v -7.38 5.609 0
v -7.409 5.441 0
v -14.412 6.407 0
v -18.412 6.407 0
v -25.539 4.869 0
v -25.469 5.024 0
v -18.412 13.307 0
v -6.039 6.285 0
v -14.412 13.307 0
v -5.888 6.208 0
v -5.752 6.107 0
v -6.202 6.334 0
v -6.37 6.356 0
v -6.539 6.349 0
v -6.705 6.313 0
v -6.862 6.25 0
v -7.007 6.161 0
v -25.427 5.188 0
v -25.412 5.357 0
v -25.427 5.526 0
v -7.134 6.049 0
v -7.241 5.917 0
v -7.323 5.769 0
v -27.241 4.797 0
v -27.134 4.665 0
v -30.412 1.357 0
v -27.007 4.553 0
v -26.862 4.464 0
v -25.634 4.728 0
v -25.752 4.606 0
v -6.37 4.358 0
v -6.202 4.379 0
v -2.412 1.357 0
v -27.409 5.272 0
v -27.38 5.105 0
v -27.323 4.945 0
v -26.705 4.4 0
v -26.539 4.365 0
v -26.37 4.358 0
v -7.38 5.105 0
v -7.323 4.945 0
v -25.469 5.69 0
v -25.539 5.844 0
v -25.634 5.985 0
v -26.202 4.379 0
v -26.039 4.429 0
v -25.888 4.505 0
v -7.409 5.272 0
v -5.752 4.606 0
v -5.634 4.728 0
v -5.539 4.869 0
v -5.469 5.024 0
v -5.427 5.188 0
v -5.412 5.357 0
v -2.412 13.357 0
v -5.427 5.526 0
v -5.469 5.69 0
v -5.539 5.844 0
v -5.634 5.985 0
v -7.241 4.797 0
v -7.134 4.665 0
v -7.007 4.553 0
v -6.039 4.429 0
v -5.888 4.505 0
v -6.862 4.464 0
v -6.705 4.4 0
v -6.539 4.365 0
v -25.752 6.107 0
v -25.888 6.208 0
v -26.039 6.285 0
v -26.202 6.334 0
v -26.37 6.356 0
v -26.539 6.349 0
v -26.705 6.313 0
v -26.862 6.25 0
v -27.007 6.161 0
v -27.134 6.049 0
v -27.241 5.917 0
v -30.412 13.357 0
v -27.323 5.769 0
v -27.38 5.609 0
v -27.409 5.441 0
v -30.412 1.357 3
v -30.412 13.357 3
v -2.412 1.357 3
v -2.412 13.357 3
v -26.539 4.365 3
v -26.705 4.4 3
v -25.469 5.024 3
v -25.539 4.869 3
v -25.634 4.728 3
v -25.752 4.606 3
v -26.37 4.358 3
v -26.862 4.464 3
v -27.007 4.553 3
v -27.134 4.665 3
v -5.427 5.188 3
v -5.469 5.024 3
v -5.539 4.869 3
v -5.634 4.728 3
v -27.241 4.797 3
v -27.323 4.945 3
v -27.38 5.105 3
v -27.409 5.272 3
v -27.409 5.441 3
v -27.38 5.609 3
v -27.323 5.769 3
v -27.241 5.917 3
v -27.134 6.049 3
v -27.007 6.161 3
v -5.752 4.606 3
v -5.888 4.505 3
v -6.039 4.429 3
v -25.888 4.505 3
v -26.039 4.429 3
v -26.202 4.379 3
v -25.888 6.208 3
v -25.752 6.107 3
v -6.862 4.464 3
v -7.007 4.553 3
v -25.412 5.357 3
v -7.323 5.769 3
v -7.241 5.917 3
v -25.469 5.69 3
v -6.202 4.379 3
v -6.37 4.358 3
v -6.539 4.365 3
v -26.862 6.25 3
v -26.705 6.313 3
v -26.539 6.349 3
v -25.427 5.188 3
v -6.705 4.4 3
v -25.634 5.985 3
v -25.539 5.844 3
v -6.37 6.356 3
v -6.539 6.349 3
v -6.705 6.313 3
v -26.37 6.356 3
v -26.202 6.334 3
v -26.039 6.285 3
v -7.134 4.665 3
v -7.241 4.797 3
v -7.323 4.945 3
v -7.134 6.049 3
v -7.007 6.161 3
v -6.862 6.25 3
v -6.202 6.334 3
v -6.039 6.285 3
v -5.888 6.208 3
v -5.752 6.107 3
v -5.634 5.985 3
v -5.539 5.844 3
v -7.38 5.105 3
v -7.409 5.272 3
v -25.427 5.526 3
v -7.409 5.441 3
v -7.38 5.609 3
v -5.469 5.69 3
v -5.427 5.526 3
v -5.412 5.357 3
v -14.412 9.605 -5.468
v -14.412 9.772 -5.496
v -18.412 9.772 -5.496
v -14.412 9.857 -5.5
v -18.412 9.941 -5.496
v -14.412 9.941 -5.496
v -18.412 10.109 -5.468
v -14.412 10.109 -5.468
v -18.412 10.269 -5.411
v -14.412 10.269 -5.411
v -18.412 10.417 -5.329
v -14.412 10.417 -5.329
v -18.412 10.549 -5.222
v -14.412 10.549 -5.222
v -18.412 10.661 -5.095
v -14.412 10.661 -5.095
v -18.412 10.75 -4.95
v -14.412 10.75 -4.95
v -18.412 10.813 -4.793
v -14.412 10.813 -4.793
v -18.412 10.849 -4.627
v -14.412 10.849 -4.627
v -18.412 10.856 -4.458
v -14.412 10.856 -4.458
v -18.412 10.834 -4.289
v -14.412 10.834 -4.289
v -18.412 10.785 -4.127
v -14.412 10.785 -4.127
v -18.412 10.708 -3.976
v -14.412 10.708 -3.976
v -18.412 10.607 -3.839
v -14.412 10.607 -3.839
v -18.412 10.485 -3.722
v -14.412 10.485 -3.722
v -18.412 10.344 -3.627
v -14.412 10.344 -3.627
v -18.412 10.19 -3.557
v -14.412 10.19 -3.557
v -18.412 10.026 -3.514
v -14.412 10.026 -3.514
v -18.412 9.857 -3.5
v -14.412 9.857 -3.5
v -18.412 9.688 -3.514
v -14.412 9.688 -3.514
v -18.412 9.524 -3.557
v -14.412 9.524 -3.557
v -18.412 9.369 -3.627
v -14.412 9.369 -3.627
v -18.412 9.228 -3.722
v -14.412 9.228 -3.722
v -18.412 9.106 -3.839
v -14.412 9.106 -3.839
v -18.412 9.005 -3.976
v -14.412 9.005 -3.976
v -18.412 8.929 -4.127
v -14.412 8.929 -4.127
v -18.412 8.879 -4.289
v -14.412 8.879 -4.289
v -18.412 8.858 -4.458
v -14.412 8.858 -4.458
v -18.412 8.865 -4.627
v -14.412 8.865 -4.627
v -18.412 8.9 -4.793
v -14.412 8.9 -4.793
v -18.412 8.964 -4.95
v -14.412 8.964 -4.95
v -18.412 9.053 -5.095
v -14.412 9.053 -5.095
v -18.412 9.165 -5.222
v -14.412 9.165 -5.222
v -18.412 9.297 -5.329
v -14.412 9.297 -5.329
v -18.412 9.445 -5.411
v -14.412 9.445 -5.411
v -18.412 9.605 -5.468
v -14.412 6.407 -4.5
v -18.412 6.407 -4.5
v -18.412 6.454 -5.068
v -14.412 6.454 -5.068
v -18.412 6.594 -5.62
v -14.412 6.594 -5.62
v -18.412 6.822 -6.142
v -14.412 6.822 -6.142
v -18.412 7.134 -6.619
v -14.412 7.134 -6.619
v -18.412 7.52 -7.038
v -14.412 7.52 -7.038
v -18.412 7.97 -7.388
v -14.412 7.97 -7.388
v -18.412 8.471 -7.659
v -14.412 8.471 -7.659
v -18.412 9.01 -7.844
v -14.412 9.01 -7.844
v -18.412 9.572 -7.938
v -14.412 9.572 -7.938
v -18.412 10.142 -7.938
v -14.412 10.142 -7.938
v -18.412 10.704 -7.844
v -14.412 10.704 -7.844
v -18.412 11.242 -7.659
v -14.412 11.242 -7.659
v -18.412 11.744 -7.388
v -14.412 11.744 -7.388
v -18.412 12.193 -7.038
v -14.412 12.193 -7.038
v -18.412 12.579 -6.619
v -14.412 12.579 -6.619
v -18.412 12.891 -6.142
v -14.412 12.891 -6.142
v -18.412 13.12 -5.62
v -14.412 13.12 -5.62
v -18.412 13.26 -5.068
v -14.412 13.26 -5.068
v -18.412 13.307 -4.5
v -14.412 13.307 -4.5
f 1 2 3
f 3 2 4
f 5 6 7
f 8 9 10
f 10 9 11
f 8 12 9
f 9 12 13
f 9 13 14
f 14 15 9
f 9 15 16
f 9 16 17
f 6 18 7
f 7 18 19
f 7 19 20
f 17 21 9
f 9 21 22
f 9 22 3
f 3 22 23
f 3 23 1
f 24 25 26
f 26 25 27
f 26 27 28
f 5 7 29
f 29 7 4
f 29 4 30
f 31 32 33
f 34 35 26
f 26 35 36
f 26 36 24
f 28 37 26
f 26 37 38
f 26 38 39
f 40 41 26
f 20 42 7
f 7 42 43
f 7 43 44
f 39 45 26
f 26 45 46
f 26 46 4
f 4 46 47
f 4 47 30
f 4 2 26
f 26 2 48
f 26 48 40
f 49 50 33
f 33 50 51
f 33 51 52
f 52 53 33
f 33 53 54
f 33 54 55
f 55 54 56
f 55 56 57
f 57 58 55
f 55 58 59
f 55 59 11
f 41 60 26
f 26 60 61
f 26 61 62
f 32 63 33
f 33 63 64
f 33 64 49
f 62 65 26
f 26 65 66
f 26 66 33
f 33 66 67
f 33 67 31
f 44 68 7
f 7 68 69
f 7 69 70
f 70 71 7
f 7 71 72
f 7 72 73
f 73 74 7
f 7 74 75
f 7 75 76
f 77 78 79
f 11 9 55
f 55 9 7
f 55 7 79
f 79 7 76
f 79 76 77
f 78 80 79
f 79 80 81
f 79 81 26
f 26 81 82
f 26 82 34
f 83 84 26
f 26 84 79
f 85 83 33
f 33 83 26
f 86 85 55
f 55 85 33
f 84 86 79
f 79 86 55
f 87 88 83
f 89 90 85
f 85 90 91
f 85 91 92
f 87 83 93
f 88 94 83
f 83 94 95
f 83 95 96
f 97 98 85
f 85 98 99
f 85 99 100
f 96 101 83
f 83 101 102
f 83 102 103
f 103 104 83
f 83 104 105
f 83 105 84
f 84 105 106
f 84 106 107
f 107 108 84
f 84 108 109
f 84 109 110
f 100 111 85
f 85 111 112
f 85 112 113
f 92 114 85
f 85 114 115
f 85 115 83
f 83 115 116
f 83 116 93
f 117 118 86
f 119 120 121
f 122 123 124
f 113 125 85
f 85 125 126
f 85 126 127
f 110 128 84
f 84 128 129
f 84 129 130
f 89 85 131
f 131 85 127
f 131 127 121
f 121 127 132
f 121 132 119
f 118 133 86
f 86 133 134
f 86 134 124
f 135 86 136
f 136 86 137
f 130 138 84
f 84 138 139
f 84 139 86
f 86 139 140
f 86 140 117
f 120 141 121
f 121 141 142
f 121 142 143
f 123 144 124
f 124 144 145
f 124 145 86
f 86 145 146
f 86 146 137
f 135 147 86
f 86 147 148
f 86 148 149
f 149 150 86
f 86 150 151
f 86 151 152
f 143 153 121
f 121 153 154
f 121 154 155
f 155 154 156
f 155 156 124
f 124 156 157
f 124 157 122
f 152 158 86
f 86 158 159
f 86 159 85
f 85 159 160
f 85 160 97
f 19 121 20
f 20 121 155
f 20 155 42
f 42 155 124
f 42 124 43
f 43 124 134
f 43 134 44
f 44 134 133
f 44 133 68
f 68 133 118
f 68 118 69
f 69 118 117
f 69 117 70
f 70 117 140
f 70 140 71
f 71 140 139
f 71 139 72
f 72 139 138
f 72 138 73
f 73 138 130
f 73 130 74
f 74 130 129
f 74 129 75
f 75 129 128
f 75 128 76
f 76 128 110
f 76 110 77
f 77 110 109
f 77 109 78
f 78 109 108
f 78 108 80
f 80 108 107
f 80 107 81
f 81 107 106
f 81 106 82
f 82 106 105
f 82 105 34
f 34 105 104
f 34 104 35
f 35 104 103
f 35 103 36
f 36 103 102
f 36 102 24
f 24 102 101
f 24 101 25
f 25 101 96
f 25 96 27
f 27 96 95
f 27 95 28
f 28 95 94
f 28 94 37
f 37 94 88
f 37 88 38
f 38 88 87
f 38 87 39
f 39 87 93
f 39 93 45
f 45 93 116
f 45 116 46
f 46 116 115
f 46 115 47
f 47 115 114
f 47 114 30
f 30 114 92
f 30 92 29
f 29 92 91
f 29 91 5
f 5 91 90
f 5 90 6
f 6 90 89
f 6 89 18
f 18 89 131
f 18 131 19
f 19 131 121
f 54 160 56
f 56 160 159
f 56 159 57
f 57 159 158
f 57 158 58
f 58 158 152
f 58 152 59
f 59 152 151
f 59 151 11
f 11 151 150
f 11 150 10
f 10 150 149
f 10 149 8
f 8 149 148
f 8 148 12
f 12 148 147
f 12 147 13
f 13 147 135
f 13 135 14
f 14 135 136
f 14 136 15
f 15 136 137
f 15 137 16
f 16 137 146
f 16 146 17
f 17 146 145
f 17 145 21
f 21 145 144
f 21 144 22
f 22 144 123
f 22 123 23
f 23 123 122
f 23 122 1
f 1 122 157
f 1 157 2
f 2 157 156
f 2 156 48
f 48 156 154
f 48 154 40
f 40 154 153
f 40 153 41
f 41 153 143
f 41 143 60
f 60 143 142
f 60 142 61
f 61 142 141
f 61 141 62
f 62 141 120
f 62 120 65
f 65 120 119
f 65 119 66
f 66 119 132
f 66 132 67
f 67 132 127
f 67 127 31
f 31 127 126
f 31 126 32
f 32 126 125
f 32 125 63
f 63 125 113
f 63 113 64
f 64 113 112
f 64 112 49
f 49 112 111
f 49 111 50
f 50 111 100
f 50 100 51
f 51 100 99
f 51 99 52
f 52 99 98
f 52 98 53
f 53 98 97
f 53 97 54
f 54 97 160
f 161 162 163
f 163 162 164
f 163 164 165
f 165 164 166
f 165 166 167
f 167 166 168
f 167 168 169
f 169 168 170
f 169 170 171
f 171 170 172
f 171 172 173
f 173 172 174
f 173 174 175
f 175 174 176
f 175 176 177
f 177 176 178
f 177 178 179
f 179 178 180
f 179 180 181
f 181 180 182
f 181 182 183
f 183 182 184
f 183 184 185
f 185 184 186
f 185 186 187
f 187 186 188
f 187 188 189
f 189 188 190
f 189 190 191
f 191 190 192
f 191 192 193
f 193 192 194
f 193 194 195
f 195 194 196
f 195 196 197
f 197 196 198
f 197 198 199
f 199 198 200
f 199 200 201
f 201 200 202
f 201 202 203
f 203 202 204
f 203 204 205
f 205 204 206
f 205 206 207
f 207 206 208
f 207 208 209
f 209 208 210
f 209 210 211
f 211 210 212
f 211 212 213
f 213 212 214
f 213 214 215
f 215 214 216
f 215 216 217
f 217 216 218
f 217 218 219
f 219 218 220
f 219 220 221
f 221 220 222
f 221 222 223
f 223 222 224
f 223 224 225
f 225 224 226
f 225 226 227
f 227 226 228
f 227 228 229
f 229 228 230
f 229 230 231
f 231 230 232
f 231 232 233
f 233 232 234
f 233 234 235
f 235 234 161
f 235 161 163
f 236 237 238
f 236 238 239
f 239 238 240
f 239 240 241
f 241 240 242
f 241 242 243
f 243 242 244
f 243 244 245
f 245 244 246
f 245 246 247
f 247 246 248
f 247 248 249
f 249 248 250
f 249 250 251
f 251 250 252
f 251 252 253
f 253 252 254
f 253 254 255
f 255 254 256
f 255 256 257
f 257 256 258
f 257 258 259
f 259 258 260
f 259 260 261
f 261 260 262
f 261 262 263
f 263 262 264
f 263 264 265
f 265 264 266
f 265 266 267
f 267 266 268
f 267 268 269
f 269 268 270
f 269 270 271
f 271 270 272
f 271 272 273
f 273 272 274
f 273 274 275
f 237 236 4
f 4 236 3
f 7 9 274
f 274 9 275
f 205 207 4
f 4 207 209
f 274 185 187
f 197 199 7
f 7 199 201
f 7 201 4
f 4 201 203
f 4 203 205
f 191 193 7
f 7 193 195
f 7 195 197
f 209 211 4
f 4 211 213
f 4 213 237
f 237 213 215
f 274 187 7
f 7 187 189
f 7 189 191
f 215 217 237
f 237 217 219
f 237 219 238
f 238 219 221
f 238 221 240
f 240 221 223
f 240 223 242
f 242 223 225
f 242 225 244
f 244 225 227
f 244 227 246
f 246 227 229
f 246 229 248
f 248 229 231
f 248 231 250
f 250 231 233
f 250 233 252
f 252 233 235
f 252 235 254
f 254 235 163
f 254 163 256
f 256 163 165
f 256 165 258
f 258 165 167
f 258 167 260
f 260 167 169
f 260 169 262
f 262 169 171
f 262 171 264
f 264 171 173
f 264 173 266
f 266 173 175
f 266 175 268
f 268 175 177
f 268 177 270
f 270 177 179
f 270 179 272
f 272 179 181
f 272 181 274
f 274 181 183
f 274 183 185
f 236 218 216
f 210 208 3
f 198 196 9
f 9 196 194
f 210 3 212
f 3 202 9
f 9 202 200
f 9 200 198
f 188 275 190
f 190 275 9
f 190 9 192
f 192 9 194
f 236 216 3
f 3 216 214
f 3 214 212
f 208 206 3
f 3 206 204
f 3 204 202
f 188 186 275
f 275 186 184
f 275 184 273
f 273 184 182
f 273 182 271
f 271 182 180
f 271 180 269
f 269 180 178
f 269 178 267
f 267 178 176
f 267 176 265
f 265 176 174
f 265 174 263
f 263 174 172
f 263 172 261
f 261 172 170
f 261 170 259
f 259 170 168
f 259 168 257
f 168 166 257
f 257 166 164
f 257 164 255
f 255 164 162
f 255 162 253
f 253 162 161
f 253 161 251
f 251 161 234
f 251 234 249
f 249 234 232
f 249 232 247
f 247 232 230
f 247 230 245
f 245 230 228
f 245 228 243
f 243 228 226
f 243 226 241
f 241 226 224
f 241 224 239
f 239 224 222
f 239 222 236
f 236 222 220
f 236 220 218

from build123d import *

# Parameters (mm, degrees)
CROQUIS1_W              = 28
CROQUIS1_H              = 12
SALIENTE_EXTRUIR1_DEPTH = 3
CROQUIS2_R              = 1
CORTAR_EXTRUIR1_DEPTH   = 3
CROQUIS3_W              = 3
CROQUIS3_H              = 8.392153605
SALIENTE_EXTRUIR2_DEPTH = 8
CROQUIS4_R              = 1
CORTAR_EXTRUIR2_DEPTH   = 3
CORTAR_EXTRUIR3_DEPTH   = 8
SALIENTE_EXTRUIR4_START = 0.5
CROQUIS11_R             = 1
SALIENTE_EXTRUIR4_DEPTH = 0.5
CROQUIS12_R             = 1
SALIENTE_EXTRUIR5_DEPTH = 0.5


with BuildPart() as part:
    # Croquis1 → Saliente-Extruir1 (new body)
    with BuildSketch(Plane.XY):
        with Locations((-16.412225504, 7.356643357)):
            Rectangle(CROQUIS1_W, CROQUIS1_H)
    extrude(amount=SALIENTE_EXTRUIR1_DEPTH)

    # Croquis2 → Cortar-Extruir1 (cut)
    with BuildSketch(Plane.XY.offset(3)):
        with Locations((-26.412225504, 5.356643357)):
            Circle(CROQUIS2_R)
        with Locations((-6.412225504, 5.356643357)):
            Circle(CROQUIS2_R)
    extrude(amount=-CORTAR_EXTRUIR1_DEPTH, mode=Mode.SUBTRACT)

    # Croquis3 → Saliente-Extruir2 (add)
    with BuildSketch(Plane(origin=(0, 0, 0), x_dir=(-1, 0, 0), z_dir=(0, 0, -1))):
        with Locations((16.412225504, 9.160566555)):
            Rectangle(CROQUIS3_W, CROQUIS3_H)
    extrude(amount=SALIENTE_EXTRUIR2_DEPTH)

    # Croquis4 → Cortar-Extruir2 (cut)
    with BuildSketch(Plane.ZY.offset(17.912225504)):
        with Locations((-4.5, 9.856643357)):
            Circle(CROQUIS4_R)
    extrude(amount=-CORTAR_EXTRUIR2_DEPTH, mode=Mode.SUBTRACT)

    # Croquis6 → Cortar-Extruir3 (cut)
    with BuildSketch(Plane.ZY.offset(17.912225504)):
        with BuildLine():
            Line((-8, 13.356643357), (-4.5, 13.356643357))
            Line((-4.5, 13.356643357), (0, 13.356643357))
            Line((0, 13.356643357), (0, 13.306643357))
            Line((0, 13.306643357), (-4.5, 13.306643357))
            ThreePointArc((-4.5, 13.306643357), (-7.95, 9.856643357), (-4.5, 6.406643357))
            Line((-4.5, 6.406643357), (0, 6.406643357))
            Line((0, 6.406643357), (0, 4.964489752))
            Line((0, 4.964489752), (-8, 4.964489752))
            Line((-8, 4.964489752), (-8, 6.352103478))
            Line((-8, 6.352103478), (-8, 13.356643357))
        make_face()
    extrude(amount=-CORTAR_EXTRUIR3_DEPTH, mode=Mode.SUBTRACT)

    # Croquis11 → Saliente-Extruir4 (add)
    with BuildSketch(Plane.ZY.offset(17.912225504).offset(SALIENTE_EXTRUIR4_START)):
        with BuildLine():
            Line((-4.5, 6.406643357), (0, 6.406643357))
            Line((0, 6.406643357), (0, 13.306643357))
            Line((0, 13.306643357), (-4.5, 13.306643357))
            ThreePointArc((-4.5, 13.306643357), (-7.95, 9.856643357), (-4.5, 6.406643357))
        make_face()
        with Locations((-4.5, 9.856643357)):
            Circle(CROQUIS11_R, mode=Mode.SUBTRACT)
    extrude(amount=-SALIENTE_EXTRUIR4_DEPTH)

    # Croquis12 → Saliente-Extruir5 (add)
    with BuildSketch(Plane(origin=(-14.912225504, 0, 0), x_dir=(0, 0, -1), z_dir=(1, 0, 0))):
        with BuildLine():
            Line((4.5, 13.306643357), (0, 13.306643357))
            Line((0, 13.306643357), (0, 6.406643357))
            Line((0, 6.406643357), (4.5, 6.406643357))
            ThreePointArc((4.5, 6.406643357), (7.95, 9.856643357), (4.5, 13.306643357))
        make_face()
        with Locations(Location((4.5, 9.856643357, 0), (0, 0, 180))):
            Circle(CROQUIS12_R, mode=Mode.SUBTRACT)
    extrude(amount=SALIENTE_EXTRUIR5_DEPTH)


solid = part.part
